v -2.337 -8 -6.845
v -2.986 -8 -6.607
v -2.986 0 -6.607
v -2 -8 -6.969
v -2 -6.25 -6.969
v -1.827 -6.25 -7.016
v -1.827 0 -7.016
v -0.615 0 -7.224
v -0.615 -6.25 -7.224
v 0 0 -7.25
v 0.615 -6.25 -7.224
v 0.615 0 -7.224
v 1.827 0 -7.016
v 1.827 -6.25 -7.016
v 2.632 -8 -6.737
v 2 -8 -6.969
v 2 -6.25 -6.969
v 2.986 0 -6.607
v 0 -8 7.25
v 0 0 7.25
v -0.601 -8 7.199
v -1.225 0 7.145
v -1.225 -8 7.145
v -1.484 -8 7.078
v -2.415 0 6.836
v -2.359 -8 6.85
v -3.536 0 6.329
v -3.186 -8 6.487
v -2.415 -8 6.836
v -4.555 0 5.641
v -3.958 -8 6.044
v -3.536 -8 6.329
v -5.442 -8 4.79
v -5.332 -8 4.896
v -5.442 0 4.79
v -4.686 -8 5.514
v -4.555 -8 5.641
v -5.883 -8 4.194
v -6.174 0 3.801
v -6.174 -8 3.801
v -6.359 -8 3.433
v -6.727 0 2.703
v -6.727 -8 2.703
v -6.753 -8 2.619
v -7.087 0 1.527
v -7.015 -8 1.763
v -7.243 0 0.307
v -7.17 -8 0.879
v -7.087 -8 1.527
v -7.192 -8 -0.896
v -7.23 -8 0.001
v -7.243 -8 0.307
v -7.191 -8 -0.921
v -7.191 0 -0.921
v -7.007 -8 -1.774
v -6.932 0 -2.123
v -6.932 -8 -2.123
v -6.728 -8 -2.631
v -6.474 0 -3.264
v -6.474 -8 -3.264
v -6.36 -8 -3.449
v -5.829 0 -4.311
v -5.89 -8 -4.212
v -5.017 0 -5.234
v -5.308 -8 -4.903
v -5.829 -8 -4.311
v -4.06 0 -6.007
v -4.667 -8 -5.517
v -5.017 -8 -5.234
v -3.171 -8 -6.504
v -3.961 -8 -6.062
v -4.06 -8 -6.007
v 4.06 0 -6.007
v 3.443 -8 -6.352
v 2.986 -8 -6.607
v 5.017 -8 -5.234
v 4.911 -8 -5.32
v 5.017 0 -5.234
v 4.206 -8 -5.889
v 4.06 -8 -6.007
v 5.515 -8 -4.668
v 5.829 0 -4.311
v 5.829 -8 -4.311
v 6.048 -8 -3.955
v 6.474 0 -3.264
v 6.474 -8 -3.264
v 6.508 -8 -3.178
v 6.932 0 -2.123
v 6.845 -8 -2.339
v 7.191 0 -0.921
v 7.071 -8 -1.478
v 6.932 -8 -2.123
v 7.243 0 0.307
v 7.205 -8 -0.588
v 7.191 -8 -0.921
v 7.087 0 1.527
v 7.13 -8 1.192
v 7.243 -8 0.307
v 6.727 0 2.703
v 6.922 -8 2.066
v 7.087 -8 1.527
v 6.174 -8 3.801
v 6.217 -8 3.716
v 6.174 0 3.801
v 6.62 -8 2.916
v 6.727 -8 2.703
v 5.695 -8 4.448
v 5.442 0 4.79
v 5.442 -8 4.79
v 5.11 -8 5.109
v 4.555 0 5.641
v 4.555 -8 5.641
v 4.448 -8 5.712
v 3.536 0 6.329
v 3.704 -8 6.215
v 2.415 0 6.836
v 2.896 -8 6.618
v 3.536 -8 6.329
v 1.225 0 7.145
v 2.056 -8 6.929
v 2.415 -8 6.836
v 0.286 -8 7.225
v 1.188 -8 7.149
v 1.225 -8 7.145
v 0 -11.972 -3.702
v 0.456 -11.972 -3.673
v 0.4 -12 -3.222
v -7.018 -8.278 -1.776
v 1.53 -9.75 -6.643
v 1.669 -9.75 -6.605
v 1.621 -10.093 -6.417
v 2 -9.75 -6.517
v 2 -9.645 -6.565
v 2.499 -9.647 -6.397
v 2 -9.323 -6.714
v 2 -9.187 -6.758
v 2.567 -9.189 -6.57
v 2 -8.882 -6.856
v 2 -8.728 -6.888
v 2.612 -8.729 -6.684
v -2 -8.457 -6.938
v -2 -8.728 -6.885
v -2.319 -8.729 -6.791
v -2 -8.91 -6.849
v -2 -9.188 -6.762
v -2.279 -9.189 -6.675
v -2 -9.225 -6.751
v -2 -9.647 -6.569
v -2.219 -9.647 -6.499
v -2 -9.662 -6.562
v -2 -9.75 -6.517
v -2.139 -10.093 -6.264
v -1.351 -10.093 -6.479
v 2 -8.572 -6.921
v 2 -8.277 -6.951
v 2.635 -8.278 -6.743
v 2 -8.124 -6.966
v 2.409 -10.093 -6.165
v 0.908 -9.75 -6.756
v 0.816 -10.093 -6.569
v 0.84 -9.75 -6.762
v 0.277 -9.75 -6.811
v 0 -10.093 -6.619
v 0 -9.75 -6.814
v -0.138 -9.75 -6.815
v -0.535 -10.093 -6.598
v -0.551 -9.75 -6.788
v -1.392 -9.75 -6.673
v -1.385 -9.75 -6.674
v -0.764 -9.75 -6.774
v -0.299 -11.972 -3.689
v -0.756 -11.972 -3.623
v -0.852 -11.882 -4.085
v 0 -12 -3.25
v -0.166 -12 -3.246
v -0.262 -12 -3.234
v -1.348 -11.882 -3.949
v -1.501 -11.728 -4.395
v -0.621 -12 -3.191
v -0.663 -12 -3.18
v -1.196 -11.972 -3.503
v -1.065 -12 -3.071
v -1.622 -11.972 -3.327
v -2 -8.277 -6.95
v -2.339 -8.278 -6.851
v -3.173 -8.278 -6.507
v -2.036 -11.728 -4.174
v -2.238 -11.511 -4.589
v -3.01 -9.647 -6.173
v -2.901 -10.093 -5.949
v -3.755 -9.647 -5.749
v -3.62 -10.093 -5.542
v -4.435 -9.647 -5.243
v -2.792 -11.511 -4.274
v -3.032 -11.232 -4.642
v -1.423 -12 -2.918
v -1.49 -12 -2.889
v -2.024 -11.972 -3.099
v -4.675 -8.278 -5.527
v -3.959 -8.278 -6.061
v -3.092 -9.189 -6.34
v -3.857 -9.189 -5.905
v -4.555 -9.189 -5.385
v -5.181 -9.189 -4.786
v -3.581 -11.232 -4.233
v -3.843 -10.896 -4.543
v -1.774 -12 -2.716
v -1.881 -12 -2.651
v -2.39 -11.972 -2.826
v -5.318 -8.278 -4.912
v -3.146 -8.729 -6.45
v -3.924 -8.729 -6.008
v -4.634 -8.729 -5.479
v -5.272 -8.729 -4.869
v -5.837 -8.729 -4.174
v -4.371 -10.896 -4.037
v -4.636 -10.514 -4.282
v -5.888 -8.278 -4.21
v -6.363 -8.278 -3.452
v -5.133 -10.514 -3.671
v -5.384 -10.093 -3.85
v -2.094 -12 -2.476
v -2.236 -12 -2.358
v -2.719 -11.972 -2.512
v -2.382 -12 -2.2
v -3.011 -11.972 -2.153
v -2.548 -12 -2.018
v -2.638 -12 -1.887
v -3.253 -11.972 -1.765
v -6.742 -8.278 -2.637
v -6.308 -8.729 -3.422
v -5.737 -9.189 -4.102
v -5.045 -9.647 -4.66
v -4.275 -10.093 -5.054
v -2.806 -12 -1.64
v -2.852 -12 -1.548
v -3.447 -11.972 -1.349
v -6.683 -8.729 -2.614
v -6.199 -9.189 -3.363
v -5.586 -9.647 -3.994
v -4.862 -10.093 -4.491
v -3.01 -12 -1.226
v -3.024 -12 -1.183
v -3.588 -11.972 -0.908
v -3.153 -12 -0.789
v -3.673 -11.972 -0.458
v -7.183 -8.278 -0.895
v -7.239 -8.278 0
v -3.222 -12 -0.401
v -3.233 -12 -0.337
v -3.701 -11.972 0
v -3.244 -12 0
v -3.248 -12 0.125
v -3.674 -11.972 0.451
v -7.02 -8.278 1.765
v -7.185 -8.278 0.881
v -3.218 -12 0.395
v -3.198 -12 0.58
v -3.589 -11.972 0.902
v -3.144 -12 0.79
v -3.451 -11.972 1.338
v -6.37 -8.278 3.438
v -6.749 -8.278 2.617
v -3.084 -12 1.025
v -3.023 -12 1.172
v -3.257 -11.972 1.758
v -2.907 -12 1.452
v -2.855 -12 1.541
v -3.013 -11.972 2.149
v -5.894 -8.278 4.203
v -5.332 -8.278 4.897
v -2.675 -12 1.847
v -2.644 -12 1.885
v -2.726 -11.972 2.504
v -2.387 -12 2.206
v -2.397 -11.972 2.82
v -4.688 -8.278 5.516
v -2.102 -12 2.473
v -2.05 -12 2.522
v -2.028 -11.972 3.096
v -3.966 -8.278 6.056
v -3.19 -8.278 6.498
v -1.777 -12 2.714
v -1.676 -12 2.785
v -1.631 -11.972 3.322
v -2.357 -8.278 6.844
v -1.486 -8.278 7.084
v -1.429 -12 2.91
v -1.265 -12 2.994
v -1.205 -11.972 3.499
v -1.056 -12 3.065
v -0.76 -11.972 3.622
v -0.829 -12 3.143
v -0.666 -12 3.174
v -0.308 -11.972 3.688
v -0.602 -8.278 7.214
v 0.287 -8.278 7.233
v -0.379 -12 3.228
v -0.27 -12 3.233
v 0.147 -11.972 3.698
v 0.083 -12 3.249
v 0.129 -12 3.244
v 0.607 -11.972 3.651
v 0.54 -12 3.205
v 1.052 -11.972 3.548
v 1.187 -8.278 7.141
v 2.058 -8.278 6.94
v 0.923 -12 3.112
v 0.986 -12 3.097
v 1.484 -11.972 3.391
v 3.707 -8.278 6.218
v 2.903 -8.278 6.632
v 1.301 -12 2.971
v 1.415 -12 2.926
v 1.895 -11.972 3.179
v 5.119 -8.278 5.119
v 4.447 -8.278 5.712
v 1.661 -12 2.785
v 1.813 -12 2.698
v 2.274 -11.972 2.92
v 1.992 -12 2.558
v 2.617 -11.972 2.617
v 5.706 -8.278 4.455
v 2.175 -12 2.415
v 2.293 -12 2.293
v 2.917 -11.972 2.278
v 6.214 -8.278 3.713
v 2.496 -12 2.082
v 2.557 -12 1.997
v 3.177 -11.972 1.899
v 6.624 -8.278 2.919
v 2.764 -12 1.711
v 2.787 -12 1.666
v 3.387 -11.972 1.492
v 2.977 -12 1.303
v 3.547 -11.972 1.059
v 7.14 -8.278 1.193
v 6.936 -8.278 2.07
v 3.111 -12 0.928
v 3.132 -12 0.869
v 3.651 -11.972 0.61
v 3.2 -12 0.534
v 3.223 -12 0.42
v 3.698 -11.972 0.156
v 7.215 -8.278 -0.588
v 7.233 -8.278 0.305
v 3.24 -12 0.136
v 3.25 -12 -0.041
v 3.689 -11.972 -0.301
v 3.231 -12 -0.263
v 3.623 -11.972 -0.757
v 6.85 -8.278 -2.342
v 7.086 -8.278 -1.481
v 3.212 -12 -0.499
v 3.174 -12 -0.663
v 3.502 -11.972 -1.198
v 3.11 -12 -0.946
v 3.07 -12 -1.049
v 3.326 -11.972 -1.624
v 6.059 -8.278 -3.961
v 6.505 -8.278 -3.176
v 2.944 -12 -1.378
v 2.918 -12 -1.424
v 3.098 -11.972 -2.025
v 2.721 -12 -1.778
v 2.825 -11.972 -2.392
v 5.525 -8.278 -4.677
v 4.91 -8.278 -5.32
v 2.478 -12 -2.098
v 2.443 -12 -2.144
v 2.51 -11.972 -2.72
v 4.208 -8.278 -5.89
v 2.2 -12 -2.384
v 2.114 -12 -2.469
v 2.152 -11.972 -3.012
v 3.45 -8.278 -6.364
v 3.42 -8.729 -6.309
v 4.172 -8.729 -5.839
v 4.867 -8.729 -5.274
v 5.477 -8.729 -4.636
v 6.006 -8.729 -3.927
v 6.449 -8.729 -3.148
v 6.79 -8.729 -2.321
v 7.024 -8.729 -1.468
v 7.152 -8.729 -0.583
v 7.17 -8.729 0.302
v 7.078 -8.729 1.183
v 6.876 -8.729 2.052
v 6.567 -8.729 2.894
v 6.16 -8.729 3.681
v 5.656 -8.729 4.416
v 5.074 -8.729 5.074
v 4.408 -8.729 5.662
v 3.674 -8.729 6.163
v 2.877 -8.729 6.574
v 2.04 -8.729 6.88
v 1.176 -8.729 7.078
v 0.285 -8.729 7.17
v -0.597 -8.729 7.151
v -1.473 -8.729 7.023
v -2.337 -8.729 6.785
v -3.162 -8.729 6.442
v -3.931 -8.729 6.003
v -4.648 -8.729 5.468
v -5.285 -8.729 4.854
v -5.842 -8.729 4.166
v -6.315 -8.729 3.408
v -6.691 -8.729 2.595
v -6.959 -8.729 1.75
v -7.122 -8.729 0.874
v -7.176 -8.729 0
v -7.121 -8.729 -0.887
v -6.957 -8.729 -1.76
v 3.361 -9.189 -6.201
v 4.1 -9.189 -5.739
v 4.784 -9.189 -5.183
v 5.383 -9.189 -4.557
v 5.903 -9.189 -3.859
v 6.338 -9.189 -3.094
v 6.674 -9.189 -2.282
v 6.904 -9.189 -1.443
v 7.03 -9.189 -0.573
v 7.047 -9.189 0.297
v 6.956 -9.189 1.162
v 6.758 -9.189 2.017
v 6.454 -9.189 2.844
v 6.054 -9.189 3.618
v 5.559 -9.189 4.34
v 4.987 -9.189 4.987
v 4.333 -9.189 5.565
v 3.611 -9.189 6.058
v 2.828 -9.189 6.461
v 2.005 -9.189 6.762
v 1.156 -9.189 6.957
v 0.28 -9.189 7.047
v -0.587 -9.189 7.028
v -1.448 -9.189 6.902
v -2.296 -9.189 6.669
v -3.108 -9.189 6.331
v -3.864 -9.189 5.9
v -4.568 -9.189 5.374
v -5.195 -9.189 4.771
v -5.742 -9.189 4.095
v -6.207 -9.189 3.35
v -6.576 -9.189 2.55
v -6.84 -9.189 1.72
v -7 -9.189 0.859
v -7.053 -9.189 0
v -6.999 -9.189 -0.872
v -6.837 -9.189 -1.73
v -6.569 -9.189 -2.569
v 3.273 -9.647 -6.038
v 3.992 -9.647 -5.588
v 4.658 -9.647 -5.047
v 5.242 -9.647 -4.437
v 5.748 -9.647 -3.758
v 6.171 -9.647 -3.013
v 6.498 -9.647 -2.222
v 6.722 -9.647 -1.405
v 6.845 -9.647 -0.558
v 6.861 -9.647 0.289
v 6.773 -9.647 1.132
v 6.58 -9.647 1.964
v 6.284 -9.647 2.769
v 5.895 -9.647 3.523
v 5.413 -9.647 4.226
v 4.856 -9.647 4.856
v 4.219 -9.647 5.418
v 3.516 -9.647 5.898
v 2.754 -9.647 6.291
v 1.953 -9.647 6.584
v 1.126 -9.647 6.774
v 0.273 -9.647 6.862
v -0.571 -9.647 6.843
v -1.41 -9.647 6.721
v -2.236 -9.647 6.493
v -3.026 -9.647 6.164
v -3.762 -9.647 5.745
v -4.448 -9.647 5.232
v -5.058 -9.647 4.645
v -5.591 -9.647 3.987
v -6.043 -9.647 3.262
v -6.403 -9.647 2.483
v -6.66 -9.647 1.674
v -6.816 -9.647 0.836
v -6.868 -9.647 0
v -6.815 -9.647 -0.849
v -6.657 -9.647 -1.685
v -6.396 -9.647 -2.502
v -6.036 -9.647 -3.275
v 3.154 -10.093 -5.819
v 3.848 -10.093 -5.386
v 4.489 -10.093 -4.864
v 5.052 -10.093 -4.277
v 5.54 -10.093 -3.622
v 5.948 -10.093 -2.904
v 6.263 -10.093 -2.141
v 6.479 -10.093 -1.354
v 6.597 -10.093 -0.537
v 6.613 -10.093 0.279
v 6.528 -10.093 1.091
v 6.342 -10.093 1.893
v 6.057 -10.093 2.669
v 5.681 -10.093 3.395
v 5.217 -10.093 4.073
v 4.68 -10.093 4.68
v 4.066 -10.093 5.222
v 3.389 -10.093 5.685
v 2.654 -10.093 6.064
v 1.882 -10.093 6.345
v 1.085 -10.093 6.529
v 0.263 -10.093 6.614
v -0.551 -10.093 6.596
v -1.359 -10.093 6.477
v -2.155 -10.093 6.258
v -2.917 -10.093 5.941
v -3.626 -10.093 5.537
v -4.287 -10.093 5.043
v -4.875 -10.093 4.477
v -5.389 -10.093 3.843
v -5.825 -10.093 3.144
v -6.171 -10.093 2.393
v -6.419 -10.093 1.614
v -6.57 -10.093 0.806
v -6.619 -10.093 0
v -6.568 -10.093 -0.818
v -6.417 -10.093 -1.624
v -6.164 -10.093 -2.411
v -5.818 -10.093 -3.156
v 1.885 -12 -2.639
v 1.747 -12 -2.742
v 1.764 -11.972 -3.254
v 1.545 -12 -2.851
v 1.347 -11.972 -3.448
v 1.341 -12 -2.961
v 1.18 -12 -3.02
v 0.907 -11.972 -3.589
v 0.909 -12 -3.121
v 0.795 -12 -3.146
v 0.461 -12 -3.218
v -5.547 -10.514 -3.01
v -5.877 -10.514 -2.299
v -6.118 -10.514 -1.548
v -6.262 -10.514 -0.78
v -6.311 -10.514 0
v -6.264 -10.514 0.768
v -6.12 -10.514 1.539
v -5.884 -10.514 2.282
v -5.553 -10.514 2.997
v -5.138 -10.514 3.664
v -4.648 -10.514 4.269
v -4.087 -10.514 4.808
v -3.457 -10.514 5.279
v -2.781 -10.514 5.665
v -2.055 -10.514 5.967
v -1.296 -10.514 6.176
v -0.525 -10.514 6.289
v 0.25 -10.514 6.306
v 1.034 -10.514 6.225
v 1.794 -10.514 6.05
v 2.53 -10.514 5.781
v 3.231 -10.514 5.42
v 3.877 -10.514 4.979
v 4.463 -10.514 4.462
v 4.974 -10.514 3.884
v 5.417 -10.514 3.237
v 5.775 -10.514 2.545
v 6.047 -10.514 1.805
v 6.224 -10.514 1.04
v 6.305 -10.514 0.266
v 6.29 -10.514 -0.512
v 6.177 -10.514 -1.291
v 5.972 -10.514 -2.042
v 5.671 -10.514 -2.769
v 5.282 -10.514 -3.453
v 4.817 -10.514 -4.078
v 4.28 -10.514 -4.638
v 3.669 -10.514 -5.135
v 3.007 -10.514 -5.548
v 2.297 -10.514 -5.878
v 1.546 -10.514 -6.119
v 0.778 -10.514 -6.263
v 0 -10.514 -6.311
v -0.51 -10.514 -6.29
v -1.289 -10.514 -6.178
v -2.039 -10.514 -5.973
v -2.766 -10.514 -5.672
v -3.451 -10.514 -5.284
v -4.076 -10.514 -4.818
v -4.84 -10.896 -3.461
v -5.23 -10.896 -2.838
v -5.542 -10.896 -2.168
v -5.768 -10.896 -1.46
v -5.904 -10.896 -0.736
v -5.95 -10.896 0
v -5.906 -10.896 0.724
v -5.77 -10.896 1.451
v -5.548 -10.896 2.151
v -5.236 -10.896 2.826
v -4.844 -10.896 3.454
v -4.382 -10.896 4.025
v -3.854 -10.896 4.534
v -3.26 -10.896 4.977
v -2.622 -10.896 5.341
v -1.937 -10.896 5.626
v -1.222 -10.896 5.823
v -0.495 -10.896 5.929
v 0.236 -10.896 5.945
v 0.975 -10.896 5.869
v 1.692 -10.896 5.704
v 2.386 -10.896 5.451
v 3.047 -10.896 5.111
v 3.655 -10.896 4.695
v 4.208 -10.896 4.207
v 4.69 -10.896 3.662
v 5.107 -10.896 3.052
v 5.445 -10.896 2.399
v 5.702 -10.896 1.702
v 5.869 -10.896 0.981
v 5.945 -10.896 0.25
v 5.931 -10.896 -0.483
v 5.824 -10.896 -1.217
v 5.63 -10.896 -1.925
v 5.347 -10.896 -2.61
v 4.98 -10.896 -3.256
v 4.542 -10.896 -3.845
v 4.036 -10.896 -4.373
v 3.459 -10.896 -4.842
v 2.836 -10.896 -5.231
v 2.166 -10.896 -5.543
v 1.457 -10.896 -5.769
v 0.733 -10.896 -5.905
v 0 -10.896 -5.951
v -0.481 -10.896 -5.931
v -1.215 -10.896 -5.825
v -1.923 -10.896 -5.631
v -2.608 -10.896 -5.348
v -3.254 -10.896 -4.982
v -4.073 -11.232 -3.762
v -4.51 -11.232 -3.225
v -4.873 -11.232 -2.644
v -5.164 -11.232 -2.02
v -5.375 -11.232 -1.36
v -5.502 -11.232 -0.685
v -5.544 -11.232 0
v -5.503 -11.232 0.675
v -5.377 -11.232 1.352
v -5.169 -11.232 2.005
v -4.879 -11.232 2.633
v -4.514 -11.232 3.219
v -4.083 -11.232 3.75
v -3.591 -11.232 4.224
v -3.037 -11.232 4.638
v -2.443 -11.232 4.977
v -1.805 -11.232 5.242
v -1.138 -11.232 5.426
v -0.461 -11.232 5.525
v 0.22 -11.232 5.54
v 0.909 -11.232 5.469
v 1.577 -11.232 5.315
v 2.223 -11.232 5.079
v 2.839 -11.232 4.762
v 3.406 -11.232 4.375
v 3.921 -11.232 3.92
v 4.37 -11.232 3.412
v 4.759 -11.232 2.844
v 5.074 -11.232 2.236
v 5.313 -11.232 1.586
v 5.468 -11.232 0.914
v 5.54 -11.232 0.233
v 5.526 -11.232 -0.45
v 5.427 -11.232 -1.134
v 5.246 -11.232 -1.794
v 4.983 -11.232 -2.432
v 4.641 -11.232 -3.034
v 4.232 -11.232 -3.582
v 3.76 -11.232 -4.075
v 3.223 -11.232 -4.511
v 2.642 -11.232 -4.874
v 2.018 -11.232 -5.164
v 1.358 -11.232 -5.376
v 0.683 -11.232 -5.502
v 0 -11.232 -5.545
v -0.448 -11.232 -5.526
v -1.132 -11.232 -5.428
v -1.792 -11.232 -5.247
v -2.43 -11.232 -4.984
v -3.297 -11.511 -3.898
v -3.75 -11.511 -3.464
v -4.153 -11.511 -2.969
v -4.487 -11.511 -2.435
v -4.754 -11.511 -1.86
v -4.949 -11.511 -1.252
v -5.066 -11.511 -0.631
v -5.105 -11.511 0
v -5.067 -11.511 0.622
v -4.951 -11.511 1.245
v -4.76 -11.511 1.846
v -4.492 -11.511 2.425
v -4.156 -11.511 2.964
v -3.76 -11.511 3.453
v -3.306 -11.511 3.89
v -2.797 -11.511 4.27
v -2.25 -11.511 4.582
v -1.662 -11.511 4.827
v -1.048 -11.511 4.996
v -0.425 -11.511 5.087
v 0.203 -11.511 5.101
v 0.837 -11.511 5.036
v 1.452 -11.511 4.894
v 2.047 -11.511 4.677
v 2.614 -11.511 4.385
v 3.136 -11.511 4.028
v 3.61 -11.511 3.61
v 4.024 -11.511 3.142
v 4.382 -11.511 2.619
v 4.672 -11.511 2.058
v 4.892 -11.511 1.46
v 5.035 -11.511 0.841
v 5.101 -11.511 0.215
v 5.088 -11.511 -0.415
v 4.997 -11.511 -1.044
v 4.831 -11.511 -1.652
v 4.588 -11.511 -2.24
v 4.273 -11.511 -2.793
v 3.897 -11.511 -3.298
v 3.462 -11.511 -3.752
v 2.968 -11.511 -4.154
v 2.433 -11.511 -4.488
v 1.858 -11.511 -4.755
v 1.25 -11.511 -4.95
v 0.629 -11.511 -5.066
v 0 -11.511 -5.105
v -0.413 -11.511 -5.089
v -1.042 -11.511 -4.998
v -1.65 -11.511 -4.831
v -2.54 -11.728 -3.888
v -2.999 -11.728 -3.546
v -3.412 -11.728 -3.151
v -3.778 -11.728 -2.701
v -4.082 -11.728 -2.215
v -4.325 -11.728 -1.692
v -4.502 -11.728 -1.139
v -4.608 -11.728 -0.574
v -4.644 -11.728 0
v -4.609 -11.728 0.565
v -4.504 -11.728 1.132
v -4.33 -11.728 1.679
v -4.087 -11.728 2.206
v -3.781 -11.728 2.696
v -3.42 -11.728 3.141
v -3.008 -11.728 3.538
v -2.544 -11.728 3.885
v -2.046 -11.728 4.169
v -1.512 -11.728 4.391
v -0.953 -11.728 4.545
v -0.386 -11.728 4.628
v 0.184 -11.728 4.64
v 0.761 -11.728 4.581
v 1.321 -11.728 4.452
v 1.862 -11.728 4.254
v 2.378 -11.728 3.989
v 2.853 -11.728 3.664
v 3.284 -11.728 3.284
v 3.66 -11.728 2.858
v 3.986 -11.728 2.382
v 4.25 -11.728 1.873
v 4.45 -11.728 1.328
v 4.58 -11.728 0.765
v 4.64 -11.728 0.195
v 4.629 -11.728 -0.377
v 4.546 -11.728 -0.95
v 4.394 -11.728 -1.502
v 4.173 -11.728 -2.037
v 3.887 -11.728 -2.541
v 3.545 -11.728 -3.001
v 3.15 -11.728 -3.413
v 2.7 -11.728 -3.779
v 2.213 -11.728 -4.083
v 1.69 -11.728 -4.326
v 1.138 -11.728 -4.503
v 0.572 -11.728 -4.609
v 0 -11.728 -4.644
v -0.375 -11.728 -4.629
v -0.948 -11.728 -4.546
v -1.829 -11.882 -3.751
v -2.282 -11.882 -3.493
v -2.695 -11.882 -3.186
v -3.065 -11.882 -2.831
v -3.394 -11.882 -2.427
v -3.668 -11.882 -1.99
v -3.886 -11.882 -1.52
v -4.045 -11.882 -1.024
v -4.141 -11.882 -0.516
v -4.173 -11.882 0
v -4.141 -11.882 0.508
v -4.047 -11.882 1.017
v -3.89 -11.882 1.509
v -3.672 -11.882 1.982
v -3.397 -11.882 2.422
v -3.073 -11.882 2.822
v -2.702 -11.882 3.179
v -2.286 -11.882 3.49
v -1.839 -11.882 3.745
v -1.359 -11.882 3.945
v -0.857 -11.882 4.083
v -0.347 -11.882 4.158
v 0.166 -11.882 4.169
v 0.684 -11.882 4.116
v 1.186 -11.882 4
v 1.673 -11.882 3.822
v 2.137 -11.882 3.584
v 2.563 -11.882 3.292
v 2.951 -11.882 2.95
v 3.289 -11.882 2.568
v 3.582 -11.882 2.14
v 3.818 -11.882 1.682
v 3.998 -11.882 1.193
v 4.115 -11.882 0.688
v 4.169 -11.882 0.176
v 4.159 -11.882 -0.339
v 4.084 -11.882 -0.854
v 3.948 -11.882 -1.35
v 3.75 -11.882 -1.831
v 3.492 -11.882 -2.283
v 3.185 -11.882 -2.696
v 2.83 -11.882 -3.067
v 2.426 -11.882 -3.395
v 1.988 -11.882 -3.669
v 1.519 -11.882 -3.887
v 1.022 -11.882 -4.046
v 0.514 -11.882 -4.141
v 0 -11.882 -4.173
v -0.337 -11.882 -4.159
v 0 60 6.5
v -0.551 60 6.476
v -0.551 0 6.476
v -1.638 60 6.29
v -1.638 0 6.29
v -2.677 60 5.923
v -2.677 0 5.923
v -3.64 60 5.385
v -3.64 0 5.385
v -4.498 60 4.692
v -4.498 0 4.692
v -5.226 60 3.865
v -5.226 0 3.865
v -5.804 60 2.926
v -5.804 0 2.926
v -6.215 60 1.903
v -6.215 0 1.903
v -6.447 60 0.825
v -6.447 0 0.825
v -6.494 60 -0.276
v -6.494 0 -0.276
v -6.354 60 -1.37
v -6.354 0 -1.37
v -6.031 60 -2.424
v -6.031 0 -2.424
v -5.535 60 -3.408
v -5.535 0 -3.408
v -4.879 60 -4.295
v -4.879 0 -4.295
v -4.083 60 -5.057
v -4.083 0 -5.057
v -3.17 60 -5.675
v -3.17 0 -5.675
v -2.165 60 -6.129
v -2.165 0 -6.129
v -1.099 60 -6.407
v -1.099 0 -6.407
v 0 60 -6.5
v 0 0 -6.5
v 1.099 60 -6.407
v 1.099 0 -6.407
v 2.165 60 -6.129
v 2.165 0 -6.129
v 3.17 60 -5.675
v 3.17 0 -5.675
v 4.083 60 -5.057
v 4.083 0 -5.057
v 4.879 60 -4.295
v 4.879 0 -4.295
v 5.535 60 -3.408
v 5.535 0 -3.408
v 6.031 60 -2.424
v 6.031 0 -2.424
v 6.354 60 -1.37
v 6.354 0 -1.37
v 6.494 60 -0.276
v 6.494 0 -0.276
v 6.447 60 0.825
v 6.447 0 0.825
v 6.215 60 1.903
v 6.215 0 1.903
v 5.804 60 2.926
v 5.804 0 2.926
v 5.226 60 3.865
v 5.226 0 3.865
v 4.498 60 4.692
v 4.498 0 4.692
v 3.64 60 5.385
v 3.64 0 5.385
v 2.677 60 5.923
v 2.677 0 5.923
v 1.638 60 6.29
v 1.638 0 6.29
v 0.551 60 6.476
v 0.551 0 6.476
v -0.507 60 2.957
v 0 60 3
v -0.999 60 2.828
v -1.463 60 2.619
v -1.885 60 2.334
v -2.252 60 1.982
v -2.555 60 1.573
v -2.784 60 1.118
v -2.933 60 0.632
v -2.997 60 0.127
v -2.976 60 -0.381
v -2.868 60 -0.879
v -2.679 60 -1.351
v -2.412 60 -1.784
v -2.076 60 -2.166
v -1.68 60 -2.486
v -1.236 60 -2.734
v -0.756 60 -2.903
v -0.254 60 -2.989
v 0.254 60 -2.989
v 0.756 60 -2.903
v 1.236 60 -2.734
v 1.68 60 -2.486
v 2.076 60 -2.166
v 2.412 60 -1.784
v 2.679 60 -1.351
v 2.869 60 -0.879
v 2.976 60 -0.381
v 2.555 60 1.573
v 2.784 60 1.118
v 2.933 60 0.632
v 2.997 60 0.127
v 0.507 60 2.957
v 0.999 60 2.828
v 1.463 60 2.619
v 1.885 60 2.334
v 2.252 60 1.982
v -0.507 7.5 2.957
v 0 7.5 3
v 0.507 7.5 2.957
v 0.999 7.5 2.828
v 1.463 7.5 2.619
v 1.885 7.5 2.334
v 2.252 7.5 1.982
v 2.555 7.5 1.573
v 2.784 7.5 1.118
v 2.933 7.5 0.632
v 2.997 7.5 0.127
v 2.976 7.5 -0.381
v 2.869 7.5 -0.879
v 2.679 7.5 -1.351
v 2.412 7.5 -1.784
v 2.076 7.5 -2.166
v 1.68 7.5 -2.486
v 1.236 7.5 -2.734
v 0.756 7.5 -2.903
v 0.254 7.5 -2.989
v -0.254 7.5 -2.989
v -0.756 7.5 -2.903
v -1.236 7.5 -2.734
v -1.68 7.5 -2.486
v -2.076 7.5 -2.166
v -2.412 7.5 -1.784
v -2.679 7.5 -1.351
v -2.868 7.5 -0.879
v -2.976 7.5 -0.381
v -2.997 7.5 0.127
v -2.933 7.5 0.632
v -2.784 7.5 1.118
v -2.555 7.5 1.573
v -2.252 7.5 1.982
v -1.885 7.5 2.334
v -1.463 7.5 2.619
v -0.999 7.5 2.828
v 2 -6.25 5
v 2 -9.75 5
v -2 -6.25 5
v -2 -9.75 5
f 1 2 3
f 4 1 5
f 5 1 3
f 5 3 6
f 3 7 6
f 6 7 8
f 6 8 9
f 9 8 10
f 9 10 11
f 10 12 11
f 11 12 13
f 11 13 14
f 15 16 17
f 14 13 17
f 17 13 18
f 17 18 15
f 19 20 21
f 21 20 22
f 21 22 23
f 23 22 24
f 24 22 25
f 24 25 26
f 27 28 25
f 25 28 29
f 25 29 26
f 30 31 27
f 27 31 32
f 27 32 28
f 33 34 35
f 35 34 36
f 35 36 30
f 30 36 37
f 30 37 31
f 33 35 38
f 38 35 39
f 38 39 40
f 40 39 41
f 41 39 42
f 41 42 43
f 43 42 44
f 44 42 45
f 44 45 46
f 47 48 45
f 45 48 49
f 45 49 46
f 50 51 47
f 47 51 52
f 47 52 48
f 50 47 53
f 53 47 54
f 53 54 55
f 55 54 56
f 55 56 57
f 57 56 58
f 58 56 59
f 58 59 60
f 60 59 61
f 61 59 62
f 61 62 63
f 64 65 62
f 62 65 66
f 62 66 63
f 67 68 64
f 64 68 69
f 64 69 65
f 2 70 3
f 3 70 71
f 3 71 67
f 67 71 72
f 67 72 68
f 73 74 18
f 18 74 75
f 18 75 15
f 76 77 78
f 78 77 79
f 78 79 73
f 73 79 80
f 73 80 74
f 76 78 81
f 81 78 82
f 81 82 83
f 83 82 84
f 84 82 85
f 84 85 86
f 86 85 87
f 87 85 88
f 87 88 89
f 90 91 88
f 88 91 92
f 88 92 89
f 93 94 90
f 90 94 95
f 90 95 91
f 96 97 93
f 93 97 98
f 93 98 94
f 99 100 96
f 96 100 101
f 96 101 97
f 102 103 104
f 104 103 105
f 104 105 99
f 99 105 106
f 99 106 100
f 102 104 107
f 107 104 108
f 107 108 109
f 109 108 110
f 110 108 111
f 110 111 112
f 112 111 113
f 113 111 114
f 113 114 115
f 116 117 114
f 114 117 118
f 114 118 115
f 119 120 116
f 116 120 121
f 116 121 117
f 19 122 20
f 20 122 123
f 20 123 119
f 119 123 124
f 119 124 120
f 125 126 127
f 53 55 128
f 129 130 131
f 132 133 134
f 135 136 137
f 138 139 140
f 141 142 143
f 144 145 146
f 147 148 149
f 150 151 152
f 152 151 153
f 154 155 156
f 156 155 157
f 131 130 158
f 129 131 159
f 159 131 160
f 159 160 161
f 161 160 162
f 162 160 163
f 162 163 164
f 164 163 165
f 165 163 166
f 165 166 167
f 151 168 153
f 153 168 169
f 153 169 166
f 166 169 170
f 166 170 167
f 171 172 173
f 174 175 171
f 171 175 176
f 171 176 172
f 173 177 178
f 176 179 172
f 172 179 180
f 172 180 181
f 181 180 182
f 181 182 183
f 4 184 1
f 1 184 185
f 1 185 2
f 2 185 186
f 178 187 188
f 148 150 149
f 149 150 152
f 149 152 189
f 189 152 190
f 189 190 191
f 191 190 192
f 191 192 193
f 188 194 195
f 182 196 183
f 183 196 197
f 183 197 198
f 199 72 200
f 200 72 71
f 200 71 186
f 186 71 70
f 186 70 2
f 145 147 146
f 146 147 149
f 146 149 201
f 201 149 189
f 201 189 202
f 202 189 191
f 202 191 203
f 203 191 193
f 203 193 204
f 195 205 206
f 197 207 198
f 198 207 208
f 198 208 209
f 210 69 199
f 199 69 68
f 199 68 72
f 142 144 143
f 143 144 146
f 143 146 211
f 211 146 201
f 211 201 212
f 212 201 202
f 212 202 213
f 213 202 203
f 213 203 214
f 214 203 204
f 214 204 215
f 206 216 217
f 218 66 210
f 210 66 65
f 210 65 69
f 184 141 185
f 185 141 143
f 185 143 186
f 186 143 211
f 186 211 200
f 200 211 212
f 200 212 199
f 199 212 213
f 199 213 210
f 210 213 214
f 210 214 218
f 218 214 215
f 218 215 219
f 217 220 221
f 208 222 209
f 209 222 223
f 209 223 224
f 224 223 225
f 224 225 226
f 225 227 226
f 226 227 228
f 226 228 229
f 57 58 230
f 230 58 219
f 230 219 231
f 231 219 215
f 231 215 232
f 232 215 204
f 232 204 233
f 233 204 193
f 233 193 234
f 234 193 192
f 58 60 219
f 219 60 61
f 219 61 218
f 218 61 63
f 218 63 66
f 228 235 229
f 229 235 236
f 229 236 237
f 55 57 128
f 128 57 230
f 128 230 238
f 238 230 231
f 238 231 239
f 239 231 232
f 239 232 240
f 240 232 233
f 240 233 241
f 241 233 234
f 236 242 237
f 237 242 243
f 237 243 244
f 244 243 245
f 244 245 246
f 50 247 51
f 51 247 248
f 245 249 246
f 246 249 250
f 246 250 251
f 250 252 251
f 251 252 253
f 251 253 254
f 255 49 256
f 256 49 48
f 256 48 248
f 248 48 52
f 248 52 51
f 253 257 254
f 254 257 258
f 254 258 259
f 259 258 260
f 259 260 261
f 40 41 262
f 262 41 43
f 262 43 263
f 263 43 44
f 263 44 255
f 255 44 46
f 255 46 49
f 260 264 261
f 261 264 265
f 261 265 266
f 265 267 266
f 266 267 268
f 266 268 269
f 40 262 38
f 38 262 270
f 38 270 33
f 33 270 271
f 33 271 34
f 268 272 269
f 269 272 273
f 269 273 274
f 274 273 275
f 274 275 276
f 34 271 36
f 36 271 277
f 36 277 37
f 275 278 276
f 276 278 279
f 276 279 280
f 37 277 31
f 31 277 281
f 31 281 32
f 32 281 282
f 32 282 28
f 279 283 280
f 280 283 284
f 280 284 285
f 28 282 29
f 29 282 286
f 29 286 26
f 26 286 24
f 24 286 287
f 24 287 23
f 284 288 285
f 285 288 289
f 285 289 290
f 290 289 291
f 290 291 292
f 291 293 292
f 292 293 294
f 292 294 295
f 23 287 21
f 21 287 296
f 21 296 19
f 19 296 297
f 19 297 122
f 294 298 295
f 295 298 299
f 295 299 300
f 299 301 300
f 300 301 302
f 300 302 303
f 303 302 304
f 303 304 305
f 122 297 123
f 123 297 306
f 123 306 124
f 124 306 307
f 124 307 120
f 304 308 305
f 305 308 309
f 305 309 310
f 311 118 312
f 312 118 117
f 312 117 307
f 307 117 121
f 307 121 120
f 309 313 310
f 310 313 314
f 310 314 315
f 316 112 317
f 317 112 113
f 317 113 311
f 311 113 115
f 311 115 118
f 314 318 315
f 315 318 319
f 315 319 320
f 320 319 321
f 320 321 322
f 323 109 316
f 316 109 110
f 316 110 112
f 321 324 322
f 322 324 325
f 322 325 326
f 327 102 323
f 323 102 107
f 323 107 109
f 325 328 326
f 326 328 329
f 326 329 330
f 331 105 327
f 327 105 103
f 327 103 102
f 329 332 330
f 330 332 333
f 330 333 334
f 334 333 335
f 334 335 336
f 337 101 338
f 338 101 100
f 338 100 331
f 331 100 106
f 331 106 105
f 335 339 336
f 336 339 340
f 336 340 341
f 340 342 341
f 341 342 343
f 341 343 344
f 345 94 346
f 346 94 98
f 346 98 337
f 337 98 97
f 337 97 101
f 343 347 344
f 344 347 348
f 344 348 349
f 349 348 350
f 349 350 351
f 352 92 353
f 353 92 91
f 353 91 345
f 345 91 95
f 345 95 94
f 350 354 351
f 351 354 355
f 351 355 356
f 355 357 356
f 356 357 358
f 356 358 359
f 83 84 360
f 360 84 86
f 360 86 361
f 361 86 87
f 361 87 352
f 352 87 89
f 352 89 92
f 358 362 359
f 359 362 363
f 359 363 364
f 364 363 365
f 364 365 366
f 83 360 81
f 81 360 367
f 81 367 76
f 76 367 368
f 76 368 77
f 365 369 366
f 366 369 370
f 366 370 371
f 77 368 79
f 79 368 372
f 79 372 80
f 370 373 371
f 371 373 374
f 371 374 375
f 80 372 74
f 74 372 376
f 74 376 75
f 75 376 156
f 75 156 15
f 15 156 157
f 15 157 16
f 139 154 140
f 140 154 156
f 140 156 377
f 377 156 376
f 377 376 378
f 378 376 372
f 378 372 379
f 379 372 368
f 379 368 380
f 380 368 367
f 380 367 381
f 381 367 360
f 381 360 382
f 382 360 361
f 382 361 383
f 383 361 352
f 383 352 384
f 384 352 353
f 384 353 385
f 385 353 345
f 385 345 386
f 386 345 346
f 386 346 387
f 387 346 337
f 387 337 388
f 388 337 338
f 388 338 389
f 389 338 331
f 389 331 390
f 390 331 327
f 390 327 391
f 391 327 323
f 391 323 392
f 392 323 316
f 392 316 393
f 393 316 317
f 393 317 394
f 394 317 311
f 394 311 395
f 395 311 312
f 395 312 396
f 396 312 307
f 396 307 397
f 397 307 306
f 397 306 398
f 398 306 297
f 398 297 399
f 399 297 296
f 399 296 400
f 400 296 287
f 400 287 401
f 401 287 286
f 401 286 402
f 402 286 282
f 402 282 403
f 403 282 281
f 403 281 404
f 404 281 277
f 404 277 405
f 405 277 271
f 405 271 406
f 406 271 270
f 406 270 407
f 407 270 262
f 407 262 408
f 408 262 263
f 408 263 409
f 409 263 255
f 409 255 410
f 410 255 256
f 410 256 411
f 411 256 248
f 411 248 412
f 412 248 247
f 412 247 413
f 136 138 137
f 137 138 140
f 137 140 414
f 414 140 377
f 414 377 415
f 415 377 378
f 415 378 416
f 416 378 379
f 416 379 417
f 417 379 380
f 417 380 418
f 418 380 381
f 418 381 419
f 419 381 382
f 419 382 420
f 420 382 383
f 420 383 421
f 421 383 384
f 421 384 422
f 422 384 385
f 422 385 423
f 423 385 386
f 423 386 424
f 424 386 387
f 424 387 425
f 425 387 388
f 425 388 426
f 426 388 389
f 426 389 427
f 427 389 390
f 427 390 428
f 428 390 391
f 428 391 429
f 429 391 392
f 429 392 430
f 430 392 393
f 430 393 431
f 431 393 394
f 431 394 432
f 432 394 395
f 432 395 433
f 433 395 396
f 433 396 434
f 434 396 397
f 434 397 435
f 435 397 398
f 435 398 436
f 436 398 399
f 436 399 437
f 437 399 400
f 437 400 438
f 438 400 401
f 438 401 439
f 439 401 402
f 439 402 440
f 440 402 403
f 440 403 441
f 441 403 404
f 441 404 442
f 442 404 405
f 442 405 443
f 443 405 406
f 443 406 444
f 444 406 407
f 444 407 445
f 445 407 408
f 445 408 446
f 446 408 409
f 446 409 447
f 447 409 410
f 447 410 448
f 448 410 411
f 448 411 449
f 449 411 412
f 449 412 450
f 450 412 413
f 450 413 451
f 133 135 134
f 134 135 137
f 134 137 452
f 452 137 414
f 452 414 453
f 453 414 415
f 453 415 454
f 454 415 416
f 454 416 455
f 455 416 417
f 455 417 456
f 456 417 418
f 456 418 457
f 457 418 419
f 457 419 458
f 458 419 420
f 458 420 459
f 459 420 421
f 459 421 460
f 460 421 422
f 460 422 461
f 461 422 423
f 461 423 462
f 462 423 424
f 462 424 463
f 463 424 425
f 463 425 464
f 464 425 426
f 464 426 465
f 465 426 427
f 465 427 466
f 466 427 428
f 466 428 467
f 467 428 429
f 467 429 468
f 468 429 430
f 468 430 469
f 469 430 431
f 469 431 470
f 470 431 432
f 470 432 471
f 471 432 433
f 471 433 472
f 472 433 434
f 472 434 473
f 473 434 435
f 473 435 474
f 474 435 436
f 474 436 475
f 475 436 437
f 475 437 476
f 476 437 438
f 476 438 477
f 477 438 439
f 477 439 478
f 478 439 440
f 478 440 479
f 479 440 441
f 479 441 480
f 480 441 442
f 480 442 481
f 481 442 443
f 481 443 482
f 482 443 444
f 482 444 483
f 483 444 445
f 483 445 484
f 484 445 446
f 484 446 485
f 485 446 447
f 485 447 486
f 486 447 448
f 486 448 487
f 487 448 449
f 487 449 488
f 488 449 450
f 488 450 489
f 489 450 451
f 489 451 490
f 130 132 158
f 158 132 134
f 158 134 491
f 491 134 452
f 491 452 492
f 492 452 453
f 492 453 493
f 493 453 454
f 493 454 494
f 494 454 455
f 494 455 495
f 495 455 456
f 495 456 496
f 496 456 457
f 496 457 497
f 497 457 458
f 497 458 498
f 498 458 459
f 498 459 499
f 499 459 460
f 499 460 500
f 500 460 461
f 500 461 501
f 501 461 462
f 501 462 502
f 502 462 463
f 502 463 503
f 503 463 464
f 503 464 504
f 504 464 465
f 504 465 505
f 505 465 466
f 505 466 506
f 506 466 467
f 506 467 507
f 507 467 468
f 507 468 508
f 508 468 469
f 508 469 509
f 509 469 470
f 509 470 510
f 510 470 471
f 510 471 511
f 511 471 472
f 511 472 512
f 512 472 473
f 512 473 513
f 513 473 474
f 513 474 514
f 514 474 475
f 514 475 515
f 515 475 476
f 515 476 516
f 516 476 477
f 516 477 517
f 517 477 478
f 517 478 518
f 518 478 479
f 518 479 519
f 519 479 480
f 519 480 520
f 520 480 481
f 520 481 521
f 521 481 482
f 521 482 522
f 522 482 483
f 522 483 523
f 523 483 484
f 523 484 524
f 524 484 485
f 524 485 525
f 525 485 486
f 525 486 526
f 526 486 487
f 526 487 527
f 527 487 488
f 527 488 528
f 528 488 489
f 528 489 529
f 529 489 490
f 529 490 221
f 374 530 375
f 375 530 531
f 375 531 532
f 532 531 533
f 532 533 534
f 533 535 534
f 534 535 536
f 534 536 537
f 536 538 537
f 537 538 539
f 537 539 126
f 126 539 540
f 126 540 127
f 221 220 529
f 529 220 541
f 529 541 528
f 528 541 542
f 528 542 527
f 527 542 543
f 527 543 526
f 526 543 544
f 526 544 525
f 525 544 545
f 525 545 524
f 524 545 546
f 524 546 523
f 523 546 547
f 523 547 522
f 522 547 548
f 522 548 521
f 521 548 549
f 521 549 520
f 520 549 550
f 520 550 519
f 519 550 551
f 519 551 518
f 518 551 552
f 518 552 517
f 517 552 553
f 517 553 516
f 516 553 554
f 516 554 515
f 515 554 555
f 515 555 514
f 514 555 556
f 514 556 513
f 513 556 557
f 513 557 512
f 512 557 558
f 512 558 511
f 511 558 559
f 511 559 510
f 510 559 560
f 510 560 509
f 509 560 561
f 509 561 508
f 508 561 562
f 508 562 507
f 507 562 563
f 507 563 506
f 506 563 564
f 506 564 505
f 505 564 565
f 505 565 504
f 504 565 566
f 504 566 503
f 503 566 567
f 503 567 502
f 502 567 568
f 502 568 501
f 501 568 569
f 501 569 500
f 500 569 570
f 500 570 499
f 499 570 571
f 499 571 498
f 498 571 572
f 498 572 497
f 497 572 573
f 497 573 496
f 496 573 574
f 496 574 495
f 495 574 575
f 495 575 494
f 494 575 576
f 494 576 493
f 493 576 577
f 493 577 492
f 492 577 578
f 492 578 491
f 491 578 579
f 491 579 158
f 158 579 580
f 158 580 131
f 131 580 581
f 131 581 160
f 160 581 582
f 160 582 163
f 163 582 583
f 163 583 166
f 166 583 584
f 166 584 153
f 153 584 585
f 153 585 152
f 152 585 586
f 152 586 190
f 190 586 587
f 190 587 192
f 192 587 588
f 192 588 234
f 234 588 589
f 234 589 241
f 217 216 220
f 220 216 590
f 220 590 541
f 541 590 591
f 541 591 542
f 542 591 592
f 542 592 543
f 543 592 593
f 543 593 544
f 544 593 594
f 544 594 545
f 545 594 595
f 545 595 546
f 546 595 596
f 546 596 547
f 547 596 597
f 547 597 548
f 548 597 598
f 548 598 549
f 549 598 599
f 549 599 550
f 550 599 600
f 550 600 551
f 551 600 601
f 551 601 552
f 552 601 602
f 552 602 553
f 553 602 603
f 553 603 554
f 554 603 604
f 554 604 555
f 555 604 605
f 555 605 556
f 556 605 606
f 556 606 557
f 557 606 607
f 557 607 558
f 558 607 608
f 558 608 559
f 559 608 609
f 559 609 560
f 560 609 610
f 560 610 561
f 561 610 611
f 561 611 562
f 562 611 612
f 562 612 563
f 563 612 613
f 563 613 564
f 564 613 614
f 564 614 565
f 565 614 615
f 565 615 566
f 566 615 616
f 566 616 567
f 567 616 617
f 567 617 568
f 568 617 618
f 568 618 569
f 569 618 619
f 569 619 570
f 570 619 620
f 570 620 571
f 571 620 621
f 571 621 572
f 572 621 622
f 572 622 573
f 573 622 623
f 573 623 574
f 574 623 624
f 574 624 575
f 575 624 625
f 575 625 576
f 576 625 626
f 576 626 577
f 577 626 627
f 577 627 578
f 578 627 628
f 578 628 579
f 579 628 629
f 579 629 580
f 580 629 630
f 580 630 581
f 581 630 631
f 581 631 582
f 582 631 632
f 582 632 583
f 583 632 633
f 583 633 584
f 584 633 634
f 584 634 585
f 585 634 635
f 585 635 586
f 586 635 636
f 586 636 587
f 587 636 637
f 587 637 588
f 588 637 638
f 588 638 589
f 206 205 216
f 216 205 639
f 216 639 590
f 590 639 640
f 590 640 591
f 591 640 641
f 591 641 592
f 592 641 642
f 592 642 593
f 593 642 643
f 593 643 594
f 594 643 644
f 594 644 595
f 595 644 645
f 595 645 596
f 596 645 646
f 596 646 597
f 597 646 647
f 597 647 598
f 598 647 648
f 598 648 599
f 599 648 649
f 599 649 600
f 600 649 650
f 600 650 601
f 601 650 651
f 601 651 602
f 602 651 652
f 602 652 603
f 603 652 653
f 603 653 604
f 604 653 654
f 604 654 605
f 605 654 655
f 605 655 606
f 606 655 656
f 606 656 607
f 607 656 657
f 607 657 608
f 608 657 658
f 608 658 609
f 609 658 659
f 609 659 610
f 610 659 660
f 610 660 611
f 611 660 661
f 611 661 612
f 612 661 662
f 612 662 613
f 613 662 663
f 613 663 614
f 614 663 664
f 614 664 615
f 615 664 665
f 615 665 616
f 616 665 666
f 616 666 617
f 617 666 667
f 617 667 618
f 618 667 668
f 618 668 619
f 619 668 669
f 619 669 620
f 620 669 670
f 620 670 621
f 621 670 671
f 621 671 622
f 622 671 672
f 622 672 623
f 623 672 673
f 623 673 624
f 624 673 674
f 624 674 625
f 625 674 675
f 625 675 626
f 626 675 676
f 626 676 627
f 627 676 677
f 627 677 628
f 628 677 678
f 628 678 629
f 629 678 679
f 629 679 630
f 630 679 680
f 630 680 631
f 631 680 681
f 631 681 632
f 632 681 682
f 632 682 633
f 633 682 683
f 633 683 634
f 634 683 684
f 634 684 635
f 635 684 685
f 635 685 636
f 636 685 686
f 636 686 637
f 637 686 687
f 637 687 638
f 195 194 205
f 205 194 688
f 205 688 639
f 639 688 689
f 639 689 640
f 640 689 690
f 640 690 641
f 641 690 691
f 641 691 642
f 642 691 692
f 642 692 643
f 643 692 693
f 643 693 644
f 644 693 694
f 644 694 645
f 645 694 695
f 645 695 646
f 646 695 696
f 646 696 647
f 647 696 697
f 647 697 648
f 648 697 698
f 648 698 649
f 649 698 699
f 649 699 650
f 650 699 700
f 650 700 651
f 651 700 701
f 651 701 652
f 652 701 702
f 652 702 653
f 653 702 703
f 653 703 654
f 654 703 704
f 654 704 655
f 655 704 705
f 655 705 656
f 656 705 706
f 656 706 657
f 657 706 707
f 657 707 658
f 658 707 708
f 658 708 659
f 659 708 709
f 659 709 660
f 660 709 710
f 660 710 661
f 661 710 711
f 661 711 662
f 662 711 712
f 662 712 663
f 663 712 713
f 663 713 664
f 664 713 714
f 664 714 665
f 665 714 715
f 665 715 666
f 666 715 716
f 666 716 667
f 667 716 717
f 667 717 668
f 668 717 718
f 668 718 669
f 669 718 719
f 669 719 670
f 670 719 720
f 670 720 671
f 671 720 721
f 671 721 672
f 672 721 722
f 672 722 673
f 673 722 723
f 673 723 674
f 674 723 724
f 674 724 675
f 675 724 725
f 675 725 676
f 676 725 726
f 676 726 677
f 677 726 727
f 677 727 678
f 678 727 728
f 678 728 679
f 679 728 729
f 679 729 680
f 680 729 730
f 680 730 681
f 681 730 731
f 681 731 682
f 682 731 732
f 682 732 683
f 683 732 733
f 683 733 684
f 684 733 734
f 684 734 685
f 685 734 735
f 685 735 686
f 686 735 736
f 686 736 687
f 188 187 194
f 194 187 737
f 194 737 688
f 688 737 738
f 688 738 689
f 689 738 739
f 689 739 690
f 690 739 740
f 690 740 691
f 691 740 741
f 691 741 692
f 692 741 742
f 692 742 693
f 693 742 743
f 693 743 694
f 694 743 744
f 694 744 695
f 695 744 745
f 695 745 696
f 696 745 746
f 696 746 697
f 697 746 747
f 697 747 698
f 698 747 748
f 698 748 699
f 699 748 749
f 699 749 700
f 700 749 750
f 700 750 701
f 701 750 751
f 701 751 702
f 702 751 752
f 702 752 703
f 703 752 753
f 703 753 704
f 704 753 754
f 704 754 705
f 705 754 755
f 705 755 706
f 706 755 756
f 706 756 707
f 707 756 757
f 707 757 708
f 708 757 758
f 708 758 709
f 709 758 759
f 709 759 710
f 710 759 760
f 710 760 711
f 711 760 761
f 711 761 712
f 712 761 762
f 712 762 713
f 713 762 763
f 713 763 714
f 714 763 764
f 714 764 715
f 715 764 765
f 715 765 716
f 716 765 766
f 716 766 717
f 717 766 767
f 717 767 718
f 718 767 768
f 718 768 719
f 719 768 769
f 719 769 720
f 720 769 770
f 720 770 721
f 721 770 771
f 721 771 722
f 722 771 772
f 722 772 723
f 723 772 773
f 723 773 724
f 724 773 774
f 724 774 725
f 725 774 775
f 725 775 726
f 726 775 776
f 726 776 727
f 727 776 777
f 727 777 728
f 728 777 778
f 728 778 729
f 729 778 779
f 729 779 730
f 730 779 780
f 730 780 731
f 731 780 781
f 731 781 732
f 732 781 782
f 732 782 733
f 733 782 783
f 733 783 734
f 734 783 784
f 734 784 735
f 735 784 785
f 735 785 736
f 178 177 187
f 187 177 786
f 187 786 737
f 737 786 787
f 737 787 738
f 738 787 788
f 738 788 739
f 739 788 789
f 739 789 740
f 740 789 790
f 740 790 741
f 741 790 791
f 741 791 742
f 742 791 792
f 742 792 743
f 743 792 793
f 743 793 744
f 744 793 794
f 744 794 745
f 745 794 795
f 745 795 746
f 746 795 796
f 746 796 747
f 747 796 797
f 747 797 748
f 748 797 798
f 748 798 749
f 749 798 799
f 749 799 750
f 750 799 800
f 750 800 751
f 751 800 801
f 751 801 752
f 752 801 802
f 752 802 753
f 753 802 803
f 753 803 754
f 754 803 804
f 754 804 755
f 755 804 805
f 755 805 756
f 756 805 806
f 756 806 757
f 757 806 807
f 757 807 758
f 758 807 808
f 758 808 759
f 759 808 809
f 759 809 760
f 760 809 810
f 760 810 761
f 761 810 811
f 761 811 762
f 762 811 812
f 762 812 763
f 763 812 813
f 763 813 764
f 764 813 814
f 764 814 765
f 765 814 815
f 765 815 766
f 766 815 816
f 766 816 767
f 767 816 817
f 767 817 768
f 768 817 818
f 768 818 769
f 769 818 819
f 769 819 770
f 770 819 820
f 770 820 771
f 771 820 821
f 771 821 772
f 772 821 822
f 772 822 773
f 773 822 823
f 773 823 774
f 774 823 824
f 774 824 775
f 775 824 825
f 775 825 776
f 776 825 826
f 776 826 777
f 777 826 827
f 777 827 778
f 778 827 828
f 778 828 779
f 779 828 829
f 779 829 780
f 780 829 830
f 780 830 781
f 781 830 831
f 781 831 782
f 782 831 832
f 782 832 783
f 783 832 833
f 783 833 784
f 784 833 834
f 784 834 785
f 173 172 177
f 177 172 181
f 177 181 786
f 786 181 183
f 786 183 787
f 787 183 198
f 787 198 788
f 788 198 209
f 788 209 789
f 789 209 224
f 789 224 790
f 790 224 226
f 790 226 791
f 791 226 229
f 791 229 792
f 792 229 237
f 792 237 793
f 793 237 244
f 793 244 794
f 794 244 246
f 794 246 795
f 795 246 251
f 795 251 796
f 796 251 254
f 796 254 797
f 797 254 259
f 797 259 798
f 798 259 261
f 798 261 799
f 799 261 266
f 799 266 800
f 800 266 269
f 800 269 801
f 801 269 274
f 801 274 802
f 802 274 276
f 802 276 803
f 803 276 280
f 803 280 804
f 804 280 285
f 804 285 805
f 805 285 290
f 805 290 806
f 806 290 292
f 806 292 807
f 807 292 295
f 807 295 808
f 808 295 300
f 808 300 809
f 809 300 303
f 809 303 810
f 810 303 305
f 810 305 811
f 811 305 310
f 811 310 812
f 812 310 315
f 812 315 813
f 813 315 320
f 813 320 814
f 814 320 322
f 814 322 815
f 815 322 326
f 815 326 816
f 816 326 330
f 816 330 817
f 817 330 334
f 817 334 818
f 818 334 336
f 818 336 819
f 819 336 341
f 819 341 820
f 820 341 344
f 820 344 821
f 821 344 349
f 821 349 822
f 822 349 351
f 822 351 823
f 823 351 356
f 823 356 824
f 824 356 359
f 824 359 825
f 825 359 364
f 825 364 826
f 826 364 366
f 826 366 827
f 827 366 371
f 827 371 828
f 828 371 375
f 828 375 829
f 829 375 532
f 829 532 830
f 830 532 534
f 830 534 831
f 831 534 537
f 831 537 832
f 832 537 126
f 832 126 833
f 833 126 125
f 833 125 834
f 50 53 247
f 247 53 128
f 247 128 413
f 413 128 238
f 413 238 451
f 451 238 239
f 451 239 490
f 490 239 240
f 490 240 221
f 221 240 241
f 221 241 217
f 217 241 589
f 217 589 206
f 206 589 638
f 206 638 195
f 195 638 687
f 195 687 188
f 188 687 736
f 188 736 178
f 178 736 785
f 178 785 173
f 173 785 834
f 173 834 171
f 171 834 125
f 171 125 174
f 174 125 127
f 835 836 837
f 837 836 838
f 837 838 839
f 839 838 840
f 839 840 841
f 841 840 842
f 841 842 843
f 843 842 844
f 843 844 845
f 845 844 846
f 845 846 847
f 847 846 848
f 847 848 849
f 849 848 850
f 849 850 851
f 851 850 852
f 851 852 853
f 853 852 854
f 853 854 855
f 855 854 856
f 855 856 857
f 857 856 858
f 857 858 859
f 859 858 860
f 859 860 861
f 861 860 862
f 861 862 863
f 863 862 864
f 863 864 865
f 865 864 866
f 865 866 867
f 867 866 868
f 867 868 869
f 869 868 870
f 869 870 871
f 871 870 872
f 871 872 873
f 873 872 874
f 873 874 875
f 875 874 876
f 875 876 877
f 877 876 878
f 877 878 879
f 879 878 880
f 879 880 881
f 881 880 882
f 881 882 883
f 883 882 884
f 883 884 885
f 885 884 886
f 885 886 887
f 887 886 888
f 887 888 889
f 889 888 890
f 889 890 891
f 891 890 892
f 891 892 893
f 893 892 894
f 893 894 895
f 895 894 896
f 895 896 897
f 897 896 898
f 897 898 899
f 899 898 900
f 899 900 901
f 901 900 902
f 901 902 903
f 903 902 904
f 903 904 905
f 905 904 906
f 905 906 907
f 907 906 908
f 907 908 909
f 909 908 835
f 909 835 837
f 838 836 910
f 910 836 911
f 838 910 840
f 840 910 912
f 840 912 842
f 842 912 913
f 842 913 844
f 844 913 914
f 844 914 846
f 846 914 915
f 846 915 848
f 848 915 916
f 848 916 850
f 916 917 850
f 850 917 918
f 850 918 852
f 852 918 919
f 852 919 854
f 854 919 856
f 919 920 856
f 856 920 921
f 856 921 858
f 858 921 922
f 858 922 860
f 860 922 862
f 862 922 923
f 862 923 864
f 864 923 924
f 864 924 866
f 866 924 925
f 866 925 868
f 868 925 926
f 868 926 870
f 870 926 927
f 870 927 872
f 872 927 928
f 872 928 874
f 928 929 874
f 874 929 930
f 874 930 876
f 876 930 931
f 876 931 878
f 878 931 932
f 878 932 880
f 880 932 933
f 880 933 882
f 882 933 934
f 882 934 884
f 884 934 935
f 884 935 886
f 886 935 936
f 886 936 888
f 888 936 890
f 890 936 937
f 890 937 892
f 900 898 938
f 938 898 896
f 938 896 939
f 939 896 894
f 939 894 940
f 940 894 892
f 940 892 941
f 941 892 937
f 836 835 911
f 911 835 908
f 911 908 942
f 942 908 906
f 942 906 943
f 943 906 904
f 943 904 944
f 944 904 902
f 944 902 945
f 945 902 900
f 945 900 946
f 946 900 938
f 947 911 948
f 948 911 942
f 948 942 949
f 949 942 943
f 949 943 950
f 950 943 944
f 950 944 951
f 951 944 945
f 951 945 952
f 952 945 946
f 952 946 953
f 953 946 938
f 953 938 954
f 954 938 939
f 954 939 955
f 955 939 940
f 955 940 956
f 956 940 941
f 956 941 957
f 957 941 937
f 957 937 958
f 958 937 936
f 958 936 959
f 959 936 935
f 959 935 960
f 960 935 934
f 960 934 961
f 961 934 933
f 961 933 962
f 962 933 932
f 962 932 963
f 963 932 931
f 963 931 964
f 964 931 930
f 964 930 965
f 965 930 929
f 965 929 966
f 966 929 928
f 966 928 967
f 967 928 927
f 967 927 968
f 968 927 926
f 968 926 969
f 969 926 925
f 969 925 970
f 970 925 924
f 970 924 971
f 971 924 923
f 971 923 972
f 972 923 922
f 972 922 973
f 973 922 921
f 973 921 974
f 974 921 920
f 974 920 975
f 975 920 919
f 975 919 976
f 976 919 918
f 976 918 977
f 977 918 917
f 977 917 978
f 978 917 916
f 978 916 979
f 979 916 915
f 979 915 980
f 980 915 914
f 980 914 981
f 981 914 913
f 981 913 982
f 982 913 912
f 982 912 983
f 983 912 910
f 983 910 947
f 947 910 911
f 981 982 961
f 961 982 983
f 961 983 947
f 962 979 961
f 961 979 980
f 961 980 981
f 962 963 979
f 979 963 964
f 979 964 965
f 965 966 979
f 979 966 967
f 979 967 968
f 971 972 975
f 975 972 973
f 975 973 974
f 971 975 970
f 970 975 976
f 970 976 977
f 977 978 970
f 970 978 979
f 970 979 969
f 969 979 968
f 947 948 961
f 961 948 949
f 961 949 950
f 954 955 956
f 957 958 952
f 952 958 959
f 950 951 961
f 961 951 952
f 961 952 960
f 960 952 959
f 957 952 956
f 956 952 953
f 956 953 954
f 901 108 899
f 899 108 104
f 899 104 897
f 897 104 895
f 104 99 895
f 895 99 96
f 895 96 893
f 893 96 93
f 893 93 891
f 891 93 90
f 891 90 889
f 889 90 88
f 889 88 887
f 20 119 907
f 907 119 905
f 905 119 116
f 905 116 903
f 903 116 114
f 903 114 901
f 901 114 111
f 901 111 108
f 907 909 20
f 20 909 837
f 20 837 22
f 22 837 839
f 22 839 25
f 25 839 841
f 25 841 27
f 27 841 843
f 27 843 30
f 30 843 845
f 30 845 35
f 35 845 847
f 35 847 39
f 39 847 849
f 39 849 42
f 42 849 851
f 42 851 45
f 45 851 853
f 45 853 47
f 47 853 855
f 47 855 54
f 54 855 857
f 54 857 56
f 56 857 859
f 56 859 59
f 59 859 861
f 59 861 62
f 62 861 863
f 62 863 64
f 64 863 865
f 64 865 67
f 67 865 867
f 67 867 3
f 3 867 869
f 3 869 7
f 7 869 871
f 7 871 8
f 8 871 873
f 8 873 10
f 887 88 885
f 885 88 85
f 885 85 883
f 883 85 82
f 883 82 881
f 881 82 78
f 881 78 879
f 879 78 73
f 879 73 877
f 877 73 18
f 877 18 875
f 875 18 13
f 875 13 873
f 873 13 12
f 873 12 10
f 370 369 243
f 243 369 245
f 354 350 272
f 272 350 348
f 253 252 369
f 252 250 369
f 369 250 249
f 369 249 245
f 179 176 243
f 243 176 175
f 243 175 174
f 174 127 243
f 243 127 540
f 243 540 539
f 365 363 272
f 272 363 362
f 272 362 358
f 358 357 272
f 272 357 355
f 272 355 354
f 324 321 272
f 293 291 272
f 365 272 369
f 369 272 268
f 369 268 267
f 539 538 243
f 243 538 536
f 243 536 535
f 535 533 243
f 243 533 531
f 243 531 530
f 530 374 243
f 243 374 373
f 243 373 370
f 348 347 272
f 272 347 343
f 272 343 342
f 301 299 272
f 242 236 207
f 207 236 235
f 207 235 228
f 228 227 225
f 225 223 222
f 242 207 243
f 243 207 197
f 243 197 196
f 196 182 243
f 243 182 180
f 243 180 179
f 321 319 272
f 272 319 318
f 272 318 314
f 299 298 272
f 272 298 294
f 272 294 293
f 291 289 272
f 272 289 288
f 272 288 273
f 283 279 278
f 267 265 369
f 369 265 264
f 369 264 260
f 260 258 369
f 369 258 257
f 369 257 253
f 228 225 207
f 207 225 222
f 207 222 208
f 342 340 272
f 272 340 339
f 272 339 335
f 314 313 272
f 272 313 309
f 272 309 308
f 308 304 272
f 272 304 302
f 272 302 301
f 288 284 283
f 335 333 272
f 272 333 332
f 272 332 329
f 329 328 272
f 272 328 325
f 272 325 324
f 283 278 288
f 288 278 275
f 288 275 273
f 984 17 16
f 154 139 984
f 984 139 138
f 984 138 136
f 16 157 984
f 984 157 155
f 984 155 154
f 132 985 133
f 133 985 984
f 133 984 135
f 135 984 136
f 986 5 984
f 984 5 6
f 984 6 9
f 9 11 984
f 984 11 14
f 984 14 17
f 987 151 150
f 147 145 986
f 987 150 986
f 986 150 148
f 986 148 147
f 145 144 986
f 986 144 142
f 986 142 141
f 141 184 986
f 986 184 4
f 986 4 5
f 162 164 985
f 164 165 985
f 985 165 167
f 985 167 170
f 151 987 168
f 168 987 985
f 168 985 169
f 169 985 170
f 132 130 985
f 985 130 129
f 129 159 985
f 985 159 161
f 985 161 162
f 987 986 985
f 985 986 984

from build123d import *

# Parameters (mm, degrees)
SKETCH1_R                      = 6.5
BOSS_EXTRUDE1_DEPTH            = 60
SKETCH2_R                      = 3
INNER_CHAMBER_DEPTH            = 52.5
SKETCH4_R                      = 7.25
BOSS_EXTRUDE2_DEPTH            = 10
SKETCH5_R                      = 7.25
BOSS_EXTRUDE3_DEPTH            = 2
FILLET3_SIZE                   = 4
CUT_EXTRUDE2_REACH             = 62.87
SKETCH6_W                      = 4
SKETCH6_H                      = 3.5
CUT_EXTRUDE2_DIRECTION_2_DEPTH = 5


with BuildPart() as part:
    # Sketch1 → Boss-Extrude1 (new body)
    with BuildSketch(Plane(origin=(0, 0, 0), x_dir=(1, 0, 0), z_dir=(0, 1, 0))):
        with Locations(Location((0, 0, 0), (0, 0, 270))):
            Circle(SKETCH1_R)
    extrude(amount=BOSS_EXTRUDE1_DEPTH)

    # Sketch2 → Inner Chamber (cut)
    with BuildSketch(Plane(origin=(0, 60, 0), x_dir=(1, 0, 0), z_dir=(0, 1, 0))):
        with Locations(Location((0, 0, 0), (0, 0, 270))):
            Circle(SKETCH2_R)
    extrude(amount=-INNER_CHAMBER_DEPTH, mode=Mode.SUBTRACT)

    # Sketch4 → Boss-Extrude2 (add)
    with BuildSketch(Plane.XZ):
        with Locations(Location((0, 0, 0), (0, 0, 270))):
            Circle(SKETCH4_R)
    extrude(amount=BOSS_EXTRUDE2_DEPTH)

    # Sketch5 → Boss-Extrude3 (add)
    with BuildSketch(Plane.XZ.offset(10)):
        with Locations(Location((0, 0, 0), (0, 0, 270))):
            Circle(SKETCH5_R)
    extrude(amount=BOSS_EXTRUDE3_DEPTH)

    # Fillet3
    # a fillet whose section is not a circle: 4 mm, written as the material it takes off along each edge
    with BuildSketch(Plane(origin=(0, -12, 0), x_dir=(0, 0, -1), z_dir=(-1, 0, 0))) as fillet3_piece_1:
        with BuildLine():
            Bezier((7.25, -FILLET3_SIZE), (7.25, 0), (7.25 - FILLET3_SIZE, 0), weights=[1, 0.666666667, 1])
            Line((7.25 - FILLET3_SIZE, 0), (7.25, 0))
            Line((7.25, 0), (7.25, -FILLET3_SIZE))
        make_face()
    revolve(axis=Axis((0, -12, 0), (0, -1, 0)), mode=Mode.SUBTRACT)

    # Sketch6 → Cut-Extrude2 (cut, up to next)
    with BuildSketch(Plane.XY, mode=Mode.PRIVATE) as cut_extrude2_sk1:
        with Locations((0, -8)):
            Rectangle(SKETCH6_W, SKETCH6_H)
    cut_extrude2_tool1 = extrude(cut_extrude2_sk1.sketch, amount=-CUT_EXTRUDE2_REACH, mode=Mode.PRIVATE) & part.part
    add(cut_extrude2_tool1.solids().sort_by_distance((0, -8, 0))[0], mode=Mode.SUBTRACT)

    # Sketch6 → Cut-Extrude2 direction 2 (cut)
    with BuildSketch(Plane.XY):
        with Locations((0, -8)):
            Rectangle(SKETCH6_W, SKETCH6_H)
    extrude(amount=CUT_EXTRUDE2_DIRECTION_2_DEPTH, mode=Mode.SUBTRACT)


solid = part.part
